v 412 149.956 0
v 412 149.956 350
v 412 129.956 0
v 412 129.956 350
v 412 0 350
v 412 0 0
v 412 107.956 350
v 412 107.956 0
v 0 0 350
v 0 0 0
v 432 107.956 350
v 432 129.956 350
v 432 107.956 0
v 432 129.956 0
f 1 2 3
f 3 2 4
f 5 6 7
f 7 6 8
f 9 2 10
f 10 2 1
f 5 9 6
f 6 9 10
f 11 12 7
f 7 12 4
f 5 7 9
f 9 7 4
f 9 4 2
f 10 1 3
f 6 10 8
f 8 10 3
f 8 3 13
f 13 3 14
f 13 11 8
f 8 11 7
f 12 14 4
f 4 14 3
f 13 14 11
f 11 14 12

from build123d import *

# Parameters (mm, degrees)
BOSS_EXTRUDE1_DEPTH = 350
SKETCH2_W           = 350
SKETCH2_H           = 22
BOSS_EXTRUDE2_DEPTH = 20


with BuildPart() as part:
    # Sketch1 → Boss-Extrude1 (new body)
    with BuildSketch(Plane.XY):
        Polygon((0, 0), (412, 0), (412, 149.9557), align=None)
    extrude(amount=BOSS_EXTRUDE1_DEPTH)

    # Sketch2 → Boss-Extrude2 (add)
    with BuildSketch(Plane(origin=(412, 0, 0), x_dir=(0, 0, -1), z_dir=(1, 0, 0))):
        with Locations((-175, 118.9557)):
            Rectangle(SKETCH2_W, SKETCH2_H)
    extrude(amount=BOSS_EXTRUDE2_DEPTH)


solid = part.part
